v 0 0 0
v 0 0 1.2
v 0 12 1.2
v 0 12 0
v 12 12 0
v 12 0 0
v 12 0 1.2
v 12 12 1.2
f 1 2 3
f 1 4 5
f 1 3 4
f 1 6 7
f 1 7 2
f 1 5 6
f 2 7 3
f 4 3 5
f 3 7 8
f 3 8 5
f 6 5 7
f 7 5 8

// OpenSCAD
/* Warning, this is a very basic generator with a lot of approximation 
input data : [TFBGA, AHA, 12x12x1.2mm, 132, , C, C04-01193C]
generated by com.zoubworld.electronics.cad.model3d.Basic
Date : Sun Feb 15 10:50:49 CET 2026
*/

//body
color("black")
translate([0,0,0])
cube([12.0,12.0,1.2], center=false);
